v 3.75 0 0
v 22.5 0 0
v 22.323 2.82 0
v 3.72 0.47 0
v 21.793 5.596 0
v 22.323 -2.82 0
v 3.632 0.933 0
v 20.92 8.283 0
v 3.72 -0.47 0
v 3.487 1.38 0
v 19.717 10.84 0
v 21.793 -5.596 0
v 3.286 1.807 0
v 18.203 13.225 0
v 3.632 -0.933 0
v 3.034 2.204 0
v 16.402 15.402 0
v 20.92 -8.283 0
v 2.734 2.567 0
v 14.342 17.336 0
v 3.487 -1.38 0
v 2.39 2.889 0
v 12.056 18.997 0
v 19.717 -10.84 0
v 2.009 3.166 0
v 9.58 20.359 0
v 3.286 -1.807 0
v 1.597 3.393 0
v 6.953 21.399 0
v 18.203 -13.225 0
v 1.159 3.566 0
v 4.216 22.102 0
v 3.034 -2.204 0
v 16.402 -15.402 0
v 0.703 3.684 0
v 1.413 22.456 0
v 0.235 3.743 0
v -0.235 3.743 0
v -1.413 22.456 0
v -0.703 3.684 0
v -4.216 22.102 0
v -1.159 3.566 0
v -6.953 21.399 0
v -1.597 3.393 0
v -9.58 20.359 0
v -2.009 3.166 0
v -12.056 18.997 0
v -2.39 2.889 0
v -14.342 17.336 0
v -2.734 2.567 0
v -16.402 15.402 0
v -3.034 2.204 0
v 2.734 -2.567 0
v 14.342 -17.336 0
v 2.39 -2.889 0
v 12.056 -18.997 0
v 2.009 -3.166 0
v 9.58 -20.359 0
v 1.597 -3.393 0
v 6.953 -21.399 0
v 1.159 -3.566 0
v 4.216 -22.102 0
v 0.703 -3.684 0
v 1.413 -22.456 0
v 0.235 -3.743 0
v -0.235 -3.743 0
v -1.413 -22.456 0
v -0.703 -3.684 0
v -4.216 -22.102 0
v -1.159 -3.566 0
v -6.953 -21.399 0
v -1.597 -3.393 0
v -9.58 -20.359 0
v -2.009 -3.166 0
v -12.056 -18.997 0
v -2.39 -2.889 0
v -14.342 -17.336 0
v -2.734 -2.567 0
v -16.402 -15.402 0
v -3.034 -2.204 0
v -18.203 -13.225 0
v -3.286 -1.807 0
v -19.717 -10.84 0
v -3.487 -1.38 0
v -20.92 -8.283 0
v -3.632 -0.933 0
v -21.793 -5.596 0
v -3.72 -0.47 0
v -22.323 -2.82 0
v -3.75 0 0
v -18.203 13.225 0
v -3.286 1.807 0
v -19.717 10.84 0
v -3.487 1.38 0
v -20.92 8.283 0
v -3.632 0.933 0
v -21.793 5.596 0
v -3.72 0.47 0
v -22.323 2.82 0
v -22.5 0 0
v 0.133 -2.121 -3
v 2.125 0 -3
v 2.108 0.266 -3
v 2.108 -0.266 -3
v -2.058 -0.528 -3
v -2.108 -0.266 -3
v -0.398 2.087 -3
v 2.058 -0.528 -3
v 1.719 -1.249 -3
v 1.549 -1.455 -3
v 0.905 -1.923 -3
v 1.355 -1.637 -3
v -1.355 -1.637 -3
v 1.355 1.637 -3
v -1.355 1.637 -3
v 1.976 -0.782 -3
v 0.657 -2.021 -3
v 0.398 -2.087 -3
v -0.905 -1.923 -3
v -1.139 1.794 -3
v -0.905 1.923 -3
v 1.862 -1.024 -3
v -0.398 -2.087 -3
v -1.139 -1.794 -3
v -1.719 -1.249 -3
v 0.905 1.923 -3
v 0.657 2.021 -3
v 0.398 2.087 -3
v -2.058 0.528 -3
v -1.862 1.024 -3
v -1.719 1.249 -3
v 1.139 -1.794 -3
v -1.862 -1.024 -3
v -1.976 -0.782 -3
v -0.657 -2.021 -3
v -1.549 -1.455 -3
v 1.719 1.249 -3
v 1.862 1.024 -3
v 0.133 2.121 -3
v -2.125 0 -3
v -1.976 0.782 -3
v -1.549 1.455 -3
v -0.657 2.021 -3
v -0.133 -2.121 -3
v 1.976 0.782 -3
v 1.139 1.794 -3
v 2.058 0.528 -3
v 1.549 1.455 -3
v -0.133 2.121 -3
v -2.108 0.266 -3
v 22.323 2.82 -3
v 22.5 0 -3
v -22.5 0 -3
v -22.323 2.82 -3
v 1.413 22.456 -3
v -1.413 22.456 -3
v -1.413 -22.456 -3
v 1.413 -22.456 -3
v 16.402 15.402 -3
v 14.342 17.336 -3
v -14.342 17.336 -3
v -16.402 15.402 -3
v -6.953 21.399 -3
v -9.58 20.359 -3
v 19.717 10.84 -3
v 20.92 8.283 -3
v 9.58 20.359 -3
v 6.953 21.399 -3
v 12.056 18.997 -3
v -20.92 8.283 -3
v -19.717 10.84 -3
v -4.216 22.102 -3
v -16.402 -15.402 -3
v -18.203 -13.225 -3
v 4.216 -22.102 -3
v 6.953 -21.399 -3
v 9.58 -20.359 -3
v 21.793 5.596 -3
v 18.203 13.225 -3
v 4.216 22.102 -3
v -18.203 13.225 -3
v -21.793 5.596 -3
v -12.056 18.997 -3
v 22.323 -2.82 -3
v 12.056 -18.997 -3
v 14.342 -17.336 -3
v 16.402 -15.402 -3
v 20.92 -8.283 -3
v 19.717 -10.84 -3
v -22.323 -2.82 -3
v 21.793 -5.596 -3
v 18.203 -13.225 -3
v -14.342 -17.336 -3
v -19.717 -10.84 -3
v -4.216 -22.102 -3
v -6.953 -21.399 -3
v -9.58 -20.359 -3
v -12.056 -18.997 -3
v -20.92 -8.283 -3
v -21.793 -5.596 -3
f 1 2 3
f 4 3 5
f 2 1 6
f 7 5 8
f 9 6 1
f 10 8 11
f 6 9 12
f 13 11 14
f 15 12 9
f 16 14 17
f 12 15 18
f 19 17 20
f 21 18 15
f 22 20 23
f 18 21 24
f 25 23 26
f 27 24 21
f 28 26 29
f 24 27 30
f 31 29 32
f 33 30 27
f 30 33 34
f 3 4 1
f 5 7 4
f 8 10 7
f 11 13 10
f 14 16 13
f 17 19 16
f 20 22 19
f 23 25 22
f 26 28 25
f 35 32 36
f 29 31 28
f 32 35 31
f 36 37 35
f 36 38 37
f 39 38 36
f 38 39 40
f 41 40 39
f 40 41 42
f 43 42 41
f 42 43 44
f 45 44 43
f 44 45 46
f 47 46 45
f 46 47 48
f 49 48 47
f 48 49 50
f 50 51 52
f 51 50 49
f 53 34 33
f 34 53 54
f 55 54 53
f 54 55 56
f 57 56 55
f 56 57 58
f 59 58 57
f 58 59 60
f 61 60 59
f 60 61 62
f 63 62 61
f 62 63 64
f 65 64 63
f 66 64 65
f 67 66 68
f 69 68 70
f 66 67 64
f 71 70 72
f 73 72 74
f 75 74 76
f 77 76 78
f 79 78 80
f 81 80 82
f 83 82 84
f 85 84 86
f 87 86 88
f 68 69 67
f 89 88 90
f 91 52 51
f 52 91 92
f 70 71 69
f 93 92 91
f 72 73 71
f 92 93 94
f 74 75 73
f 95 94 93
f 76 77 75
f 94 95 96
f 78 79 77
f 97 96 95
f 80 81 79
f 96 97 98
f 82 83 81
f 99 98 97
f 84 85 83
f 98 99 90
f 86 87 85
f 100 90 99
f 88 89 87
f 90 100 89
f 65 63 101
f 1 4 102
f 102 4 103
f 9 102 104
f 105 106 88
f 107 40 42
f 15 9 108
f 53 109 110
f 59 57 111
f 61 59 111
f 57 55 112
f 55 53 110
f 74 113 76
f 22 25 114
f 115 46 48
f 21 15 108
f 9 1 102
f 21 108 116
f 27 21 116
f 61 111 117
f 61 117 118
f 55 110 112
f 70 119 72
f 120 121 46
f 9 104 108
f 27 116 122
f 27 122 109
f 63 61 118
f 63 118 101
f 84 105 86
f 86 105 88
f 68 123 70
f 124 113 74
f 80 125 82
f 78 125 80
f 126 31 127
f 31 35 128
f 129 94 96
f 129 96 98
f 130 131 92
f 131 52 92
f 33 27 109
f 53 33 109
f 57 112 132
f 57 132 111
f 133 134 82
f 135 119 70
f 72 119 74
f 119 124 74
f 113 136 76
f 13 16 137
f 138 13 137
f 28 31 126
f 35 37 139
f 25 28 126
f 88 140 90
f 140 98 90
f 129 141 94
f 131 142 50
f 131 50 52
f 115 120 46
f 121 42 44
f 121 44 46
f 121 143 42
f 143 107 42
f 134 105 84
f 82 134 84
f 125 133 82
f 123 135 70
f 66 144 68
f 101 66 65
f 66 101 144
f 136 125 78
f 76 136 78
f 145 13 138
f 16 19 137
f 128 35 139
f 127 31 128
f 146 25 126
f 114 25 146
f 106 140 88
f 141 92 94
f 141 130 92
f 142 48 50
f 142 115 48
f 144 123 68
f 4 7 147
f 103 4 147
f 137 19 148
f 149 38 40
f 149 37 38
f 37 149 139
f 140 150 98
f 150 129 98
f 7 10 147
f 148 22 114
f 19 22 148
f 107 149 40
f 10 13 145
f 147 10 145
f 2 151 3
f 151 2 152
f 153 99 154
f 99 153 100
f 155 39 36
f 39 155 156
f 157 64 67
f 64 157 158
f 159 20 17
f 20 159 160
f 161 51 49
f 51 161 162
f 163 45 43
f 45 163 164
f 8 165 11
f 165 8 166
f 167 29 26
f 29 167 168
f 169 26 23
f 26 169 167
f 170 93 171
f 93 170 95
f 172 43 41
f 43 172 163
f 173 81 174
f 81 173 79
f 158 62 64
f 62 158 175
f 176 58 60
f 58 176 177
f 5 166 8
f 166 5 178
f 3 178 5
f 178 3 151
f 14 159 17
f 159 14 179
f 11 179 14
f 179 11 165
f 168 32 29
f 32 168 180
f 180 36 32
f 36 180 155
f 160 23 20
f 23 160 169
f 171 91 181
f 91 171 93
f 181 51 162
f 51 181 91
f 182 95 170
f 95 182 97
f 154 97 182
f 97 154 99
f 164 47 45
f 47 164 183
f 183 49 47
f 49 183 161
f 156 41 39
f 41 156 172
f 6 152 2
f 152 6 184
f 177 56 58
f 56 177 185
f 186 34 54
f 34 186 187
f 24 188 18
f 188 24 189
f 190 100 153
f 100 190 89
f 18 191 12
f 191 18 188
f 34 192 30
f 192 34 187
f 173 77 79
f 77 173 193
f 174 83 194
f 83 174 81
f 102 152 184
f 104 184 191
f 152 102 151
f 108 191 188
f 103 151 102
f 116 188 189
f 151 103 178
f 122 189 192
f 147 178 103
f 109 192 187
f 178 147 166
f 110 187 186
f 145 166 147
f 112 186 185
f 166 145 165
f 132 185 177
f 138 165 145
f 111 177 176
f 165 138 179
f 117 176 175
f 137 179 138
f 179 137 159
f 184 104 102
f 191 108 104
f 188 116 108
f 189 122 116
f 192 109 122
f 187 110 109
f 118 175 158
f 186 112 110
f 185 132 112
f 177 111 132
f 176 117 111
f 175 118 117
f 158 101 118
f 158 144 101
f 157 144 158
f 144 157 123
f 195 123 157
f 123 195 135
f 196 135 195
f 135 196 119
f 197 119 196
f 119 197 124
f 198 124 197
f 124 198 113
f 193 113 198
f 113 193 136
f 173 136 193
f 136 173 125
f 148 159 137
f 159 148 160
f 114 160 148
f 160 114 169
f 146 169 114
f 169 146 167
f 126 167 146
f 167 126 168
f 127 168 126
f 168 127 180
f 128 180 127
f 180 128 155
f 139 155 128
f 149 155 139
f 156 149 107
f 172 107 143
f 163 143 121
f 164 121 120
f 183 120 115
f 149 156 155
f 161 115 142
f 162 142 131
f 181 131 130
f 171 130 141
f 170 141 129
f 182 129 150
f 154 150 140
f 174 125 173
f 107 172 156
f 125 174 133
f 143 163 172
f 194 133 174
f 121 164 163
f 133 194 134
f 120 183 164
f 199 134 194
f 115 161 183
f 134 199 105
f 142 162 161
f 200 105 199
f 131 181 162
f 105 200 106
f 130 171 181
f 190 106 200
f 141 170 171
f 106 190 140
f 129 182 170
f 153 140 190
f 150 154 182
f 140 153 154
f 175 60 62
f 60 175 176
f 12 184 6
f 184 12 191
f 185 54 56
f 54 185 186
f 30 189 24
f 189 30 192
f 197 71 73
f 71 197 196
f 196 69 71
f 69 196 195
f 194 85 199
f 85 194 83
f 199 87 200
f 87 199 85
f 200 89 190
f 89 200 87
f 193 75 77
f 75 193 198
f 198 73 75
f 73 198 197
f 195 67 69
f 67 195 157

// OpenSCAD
$fn = 50;


difference() {
	union() {
		translate(v = [0, 0, -3.0000000000]) {
			cylinder(h = 3, r = 22.5000000000);
		}
	}
	union() {
		translate(v = [0, 0, 0]) {
			rotate(a = [0, 0, 0]) {
				difference() {
					union() {
						translate(v = [0, 0, -6.0000000000]) {
							cylinder(h = 6, r = 2.0000000000);
						}
						translate(v = [0, 0, -3]) {
							cylinder(h = 3, r1 = 2.1250000000, r2 = 3.7500000000);
						}
						translate(v = [0, 0, -6.0000000000]) {
							cylinder(h = 6, r = 2.1250000000);
						}
						translate(v = [0, 0, -6.0000000000]) {
							cylinder(h = 6, r = 2.0000000000);
						}
					}
					union();
				}
			}
		}
	}
}
